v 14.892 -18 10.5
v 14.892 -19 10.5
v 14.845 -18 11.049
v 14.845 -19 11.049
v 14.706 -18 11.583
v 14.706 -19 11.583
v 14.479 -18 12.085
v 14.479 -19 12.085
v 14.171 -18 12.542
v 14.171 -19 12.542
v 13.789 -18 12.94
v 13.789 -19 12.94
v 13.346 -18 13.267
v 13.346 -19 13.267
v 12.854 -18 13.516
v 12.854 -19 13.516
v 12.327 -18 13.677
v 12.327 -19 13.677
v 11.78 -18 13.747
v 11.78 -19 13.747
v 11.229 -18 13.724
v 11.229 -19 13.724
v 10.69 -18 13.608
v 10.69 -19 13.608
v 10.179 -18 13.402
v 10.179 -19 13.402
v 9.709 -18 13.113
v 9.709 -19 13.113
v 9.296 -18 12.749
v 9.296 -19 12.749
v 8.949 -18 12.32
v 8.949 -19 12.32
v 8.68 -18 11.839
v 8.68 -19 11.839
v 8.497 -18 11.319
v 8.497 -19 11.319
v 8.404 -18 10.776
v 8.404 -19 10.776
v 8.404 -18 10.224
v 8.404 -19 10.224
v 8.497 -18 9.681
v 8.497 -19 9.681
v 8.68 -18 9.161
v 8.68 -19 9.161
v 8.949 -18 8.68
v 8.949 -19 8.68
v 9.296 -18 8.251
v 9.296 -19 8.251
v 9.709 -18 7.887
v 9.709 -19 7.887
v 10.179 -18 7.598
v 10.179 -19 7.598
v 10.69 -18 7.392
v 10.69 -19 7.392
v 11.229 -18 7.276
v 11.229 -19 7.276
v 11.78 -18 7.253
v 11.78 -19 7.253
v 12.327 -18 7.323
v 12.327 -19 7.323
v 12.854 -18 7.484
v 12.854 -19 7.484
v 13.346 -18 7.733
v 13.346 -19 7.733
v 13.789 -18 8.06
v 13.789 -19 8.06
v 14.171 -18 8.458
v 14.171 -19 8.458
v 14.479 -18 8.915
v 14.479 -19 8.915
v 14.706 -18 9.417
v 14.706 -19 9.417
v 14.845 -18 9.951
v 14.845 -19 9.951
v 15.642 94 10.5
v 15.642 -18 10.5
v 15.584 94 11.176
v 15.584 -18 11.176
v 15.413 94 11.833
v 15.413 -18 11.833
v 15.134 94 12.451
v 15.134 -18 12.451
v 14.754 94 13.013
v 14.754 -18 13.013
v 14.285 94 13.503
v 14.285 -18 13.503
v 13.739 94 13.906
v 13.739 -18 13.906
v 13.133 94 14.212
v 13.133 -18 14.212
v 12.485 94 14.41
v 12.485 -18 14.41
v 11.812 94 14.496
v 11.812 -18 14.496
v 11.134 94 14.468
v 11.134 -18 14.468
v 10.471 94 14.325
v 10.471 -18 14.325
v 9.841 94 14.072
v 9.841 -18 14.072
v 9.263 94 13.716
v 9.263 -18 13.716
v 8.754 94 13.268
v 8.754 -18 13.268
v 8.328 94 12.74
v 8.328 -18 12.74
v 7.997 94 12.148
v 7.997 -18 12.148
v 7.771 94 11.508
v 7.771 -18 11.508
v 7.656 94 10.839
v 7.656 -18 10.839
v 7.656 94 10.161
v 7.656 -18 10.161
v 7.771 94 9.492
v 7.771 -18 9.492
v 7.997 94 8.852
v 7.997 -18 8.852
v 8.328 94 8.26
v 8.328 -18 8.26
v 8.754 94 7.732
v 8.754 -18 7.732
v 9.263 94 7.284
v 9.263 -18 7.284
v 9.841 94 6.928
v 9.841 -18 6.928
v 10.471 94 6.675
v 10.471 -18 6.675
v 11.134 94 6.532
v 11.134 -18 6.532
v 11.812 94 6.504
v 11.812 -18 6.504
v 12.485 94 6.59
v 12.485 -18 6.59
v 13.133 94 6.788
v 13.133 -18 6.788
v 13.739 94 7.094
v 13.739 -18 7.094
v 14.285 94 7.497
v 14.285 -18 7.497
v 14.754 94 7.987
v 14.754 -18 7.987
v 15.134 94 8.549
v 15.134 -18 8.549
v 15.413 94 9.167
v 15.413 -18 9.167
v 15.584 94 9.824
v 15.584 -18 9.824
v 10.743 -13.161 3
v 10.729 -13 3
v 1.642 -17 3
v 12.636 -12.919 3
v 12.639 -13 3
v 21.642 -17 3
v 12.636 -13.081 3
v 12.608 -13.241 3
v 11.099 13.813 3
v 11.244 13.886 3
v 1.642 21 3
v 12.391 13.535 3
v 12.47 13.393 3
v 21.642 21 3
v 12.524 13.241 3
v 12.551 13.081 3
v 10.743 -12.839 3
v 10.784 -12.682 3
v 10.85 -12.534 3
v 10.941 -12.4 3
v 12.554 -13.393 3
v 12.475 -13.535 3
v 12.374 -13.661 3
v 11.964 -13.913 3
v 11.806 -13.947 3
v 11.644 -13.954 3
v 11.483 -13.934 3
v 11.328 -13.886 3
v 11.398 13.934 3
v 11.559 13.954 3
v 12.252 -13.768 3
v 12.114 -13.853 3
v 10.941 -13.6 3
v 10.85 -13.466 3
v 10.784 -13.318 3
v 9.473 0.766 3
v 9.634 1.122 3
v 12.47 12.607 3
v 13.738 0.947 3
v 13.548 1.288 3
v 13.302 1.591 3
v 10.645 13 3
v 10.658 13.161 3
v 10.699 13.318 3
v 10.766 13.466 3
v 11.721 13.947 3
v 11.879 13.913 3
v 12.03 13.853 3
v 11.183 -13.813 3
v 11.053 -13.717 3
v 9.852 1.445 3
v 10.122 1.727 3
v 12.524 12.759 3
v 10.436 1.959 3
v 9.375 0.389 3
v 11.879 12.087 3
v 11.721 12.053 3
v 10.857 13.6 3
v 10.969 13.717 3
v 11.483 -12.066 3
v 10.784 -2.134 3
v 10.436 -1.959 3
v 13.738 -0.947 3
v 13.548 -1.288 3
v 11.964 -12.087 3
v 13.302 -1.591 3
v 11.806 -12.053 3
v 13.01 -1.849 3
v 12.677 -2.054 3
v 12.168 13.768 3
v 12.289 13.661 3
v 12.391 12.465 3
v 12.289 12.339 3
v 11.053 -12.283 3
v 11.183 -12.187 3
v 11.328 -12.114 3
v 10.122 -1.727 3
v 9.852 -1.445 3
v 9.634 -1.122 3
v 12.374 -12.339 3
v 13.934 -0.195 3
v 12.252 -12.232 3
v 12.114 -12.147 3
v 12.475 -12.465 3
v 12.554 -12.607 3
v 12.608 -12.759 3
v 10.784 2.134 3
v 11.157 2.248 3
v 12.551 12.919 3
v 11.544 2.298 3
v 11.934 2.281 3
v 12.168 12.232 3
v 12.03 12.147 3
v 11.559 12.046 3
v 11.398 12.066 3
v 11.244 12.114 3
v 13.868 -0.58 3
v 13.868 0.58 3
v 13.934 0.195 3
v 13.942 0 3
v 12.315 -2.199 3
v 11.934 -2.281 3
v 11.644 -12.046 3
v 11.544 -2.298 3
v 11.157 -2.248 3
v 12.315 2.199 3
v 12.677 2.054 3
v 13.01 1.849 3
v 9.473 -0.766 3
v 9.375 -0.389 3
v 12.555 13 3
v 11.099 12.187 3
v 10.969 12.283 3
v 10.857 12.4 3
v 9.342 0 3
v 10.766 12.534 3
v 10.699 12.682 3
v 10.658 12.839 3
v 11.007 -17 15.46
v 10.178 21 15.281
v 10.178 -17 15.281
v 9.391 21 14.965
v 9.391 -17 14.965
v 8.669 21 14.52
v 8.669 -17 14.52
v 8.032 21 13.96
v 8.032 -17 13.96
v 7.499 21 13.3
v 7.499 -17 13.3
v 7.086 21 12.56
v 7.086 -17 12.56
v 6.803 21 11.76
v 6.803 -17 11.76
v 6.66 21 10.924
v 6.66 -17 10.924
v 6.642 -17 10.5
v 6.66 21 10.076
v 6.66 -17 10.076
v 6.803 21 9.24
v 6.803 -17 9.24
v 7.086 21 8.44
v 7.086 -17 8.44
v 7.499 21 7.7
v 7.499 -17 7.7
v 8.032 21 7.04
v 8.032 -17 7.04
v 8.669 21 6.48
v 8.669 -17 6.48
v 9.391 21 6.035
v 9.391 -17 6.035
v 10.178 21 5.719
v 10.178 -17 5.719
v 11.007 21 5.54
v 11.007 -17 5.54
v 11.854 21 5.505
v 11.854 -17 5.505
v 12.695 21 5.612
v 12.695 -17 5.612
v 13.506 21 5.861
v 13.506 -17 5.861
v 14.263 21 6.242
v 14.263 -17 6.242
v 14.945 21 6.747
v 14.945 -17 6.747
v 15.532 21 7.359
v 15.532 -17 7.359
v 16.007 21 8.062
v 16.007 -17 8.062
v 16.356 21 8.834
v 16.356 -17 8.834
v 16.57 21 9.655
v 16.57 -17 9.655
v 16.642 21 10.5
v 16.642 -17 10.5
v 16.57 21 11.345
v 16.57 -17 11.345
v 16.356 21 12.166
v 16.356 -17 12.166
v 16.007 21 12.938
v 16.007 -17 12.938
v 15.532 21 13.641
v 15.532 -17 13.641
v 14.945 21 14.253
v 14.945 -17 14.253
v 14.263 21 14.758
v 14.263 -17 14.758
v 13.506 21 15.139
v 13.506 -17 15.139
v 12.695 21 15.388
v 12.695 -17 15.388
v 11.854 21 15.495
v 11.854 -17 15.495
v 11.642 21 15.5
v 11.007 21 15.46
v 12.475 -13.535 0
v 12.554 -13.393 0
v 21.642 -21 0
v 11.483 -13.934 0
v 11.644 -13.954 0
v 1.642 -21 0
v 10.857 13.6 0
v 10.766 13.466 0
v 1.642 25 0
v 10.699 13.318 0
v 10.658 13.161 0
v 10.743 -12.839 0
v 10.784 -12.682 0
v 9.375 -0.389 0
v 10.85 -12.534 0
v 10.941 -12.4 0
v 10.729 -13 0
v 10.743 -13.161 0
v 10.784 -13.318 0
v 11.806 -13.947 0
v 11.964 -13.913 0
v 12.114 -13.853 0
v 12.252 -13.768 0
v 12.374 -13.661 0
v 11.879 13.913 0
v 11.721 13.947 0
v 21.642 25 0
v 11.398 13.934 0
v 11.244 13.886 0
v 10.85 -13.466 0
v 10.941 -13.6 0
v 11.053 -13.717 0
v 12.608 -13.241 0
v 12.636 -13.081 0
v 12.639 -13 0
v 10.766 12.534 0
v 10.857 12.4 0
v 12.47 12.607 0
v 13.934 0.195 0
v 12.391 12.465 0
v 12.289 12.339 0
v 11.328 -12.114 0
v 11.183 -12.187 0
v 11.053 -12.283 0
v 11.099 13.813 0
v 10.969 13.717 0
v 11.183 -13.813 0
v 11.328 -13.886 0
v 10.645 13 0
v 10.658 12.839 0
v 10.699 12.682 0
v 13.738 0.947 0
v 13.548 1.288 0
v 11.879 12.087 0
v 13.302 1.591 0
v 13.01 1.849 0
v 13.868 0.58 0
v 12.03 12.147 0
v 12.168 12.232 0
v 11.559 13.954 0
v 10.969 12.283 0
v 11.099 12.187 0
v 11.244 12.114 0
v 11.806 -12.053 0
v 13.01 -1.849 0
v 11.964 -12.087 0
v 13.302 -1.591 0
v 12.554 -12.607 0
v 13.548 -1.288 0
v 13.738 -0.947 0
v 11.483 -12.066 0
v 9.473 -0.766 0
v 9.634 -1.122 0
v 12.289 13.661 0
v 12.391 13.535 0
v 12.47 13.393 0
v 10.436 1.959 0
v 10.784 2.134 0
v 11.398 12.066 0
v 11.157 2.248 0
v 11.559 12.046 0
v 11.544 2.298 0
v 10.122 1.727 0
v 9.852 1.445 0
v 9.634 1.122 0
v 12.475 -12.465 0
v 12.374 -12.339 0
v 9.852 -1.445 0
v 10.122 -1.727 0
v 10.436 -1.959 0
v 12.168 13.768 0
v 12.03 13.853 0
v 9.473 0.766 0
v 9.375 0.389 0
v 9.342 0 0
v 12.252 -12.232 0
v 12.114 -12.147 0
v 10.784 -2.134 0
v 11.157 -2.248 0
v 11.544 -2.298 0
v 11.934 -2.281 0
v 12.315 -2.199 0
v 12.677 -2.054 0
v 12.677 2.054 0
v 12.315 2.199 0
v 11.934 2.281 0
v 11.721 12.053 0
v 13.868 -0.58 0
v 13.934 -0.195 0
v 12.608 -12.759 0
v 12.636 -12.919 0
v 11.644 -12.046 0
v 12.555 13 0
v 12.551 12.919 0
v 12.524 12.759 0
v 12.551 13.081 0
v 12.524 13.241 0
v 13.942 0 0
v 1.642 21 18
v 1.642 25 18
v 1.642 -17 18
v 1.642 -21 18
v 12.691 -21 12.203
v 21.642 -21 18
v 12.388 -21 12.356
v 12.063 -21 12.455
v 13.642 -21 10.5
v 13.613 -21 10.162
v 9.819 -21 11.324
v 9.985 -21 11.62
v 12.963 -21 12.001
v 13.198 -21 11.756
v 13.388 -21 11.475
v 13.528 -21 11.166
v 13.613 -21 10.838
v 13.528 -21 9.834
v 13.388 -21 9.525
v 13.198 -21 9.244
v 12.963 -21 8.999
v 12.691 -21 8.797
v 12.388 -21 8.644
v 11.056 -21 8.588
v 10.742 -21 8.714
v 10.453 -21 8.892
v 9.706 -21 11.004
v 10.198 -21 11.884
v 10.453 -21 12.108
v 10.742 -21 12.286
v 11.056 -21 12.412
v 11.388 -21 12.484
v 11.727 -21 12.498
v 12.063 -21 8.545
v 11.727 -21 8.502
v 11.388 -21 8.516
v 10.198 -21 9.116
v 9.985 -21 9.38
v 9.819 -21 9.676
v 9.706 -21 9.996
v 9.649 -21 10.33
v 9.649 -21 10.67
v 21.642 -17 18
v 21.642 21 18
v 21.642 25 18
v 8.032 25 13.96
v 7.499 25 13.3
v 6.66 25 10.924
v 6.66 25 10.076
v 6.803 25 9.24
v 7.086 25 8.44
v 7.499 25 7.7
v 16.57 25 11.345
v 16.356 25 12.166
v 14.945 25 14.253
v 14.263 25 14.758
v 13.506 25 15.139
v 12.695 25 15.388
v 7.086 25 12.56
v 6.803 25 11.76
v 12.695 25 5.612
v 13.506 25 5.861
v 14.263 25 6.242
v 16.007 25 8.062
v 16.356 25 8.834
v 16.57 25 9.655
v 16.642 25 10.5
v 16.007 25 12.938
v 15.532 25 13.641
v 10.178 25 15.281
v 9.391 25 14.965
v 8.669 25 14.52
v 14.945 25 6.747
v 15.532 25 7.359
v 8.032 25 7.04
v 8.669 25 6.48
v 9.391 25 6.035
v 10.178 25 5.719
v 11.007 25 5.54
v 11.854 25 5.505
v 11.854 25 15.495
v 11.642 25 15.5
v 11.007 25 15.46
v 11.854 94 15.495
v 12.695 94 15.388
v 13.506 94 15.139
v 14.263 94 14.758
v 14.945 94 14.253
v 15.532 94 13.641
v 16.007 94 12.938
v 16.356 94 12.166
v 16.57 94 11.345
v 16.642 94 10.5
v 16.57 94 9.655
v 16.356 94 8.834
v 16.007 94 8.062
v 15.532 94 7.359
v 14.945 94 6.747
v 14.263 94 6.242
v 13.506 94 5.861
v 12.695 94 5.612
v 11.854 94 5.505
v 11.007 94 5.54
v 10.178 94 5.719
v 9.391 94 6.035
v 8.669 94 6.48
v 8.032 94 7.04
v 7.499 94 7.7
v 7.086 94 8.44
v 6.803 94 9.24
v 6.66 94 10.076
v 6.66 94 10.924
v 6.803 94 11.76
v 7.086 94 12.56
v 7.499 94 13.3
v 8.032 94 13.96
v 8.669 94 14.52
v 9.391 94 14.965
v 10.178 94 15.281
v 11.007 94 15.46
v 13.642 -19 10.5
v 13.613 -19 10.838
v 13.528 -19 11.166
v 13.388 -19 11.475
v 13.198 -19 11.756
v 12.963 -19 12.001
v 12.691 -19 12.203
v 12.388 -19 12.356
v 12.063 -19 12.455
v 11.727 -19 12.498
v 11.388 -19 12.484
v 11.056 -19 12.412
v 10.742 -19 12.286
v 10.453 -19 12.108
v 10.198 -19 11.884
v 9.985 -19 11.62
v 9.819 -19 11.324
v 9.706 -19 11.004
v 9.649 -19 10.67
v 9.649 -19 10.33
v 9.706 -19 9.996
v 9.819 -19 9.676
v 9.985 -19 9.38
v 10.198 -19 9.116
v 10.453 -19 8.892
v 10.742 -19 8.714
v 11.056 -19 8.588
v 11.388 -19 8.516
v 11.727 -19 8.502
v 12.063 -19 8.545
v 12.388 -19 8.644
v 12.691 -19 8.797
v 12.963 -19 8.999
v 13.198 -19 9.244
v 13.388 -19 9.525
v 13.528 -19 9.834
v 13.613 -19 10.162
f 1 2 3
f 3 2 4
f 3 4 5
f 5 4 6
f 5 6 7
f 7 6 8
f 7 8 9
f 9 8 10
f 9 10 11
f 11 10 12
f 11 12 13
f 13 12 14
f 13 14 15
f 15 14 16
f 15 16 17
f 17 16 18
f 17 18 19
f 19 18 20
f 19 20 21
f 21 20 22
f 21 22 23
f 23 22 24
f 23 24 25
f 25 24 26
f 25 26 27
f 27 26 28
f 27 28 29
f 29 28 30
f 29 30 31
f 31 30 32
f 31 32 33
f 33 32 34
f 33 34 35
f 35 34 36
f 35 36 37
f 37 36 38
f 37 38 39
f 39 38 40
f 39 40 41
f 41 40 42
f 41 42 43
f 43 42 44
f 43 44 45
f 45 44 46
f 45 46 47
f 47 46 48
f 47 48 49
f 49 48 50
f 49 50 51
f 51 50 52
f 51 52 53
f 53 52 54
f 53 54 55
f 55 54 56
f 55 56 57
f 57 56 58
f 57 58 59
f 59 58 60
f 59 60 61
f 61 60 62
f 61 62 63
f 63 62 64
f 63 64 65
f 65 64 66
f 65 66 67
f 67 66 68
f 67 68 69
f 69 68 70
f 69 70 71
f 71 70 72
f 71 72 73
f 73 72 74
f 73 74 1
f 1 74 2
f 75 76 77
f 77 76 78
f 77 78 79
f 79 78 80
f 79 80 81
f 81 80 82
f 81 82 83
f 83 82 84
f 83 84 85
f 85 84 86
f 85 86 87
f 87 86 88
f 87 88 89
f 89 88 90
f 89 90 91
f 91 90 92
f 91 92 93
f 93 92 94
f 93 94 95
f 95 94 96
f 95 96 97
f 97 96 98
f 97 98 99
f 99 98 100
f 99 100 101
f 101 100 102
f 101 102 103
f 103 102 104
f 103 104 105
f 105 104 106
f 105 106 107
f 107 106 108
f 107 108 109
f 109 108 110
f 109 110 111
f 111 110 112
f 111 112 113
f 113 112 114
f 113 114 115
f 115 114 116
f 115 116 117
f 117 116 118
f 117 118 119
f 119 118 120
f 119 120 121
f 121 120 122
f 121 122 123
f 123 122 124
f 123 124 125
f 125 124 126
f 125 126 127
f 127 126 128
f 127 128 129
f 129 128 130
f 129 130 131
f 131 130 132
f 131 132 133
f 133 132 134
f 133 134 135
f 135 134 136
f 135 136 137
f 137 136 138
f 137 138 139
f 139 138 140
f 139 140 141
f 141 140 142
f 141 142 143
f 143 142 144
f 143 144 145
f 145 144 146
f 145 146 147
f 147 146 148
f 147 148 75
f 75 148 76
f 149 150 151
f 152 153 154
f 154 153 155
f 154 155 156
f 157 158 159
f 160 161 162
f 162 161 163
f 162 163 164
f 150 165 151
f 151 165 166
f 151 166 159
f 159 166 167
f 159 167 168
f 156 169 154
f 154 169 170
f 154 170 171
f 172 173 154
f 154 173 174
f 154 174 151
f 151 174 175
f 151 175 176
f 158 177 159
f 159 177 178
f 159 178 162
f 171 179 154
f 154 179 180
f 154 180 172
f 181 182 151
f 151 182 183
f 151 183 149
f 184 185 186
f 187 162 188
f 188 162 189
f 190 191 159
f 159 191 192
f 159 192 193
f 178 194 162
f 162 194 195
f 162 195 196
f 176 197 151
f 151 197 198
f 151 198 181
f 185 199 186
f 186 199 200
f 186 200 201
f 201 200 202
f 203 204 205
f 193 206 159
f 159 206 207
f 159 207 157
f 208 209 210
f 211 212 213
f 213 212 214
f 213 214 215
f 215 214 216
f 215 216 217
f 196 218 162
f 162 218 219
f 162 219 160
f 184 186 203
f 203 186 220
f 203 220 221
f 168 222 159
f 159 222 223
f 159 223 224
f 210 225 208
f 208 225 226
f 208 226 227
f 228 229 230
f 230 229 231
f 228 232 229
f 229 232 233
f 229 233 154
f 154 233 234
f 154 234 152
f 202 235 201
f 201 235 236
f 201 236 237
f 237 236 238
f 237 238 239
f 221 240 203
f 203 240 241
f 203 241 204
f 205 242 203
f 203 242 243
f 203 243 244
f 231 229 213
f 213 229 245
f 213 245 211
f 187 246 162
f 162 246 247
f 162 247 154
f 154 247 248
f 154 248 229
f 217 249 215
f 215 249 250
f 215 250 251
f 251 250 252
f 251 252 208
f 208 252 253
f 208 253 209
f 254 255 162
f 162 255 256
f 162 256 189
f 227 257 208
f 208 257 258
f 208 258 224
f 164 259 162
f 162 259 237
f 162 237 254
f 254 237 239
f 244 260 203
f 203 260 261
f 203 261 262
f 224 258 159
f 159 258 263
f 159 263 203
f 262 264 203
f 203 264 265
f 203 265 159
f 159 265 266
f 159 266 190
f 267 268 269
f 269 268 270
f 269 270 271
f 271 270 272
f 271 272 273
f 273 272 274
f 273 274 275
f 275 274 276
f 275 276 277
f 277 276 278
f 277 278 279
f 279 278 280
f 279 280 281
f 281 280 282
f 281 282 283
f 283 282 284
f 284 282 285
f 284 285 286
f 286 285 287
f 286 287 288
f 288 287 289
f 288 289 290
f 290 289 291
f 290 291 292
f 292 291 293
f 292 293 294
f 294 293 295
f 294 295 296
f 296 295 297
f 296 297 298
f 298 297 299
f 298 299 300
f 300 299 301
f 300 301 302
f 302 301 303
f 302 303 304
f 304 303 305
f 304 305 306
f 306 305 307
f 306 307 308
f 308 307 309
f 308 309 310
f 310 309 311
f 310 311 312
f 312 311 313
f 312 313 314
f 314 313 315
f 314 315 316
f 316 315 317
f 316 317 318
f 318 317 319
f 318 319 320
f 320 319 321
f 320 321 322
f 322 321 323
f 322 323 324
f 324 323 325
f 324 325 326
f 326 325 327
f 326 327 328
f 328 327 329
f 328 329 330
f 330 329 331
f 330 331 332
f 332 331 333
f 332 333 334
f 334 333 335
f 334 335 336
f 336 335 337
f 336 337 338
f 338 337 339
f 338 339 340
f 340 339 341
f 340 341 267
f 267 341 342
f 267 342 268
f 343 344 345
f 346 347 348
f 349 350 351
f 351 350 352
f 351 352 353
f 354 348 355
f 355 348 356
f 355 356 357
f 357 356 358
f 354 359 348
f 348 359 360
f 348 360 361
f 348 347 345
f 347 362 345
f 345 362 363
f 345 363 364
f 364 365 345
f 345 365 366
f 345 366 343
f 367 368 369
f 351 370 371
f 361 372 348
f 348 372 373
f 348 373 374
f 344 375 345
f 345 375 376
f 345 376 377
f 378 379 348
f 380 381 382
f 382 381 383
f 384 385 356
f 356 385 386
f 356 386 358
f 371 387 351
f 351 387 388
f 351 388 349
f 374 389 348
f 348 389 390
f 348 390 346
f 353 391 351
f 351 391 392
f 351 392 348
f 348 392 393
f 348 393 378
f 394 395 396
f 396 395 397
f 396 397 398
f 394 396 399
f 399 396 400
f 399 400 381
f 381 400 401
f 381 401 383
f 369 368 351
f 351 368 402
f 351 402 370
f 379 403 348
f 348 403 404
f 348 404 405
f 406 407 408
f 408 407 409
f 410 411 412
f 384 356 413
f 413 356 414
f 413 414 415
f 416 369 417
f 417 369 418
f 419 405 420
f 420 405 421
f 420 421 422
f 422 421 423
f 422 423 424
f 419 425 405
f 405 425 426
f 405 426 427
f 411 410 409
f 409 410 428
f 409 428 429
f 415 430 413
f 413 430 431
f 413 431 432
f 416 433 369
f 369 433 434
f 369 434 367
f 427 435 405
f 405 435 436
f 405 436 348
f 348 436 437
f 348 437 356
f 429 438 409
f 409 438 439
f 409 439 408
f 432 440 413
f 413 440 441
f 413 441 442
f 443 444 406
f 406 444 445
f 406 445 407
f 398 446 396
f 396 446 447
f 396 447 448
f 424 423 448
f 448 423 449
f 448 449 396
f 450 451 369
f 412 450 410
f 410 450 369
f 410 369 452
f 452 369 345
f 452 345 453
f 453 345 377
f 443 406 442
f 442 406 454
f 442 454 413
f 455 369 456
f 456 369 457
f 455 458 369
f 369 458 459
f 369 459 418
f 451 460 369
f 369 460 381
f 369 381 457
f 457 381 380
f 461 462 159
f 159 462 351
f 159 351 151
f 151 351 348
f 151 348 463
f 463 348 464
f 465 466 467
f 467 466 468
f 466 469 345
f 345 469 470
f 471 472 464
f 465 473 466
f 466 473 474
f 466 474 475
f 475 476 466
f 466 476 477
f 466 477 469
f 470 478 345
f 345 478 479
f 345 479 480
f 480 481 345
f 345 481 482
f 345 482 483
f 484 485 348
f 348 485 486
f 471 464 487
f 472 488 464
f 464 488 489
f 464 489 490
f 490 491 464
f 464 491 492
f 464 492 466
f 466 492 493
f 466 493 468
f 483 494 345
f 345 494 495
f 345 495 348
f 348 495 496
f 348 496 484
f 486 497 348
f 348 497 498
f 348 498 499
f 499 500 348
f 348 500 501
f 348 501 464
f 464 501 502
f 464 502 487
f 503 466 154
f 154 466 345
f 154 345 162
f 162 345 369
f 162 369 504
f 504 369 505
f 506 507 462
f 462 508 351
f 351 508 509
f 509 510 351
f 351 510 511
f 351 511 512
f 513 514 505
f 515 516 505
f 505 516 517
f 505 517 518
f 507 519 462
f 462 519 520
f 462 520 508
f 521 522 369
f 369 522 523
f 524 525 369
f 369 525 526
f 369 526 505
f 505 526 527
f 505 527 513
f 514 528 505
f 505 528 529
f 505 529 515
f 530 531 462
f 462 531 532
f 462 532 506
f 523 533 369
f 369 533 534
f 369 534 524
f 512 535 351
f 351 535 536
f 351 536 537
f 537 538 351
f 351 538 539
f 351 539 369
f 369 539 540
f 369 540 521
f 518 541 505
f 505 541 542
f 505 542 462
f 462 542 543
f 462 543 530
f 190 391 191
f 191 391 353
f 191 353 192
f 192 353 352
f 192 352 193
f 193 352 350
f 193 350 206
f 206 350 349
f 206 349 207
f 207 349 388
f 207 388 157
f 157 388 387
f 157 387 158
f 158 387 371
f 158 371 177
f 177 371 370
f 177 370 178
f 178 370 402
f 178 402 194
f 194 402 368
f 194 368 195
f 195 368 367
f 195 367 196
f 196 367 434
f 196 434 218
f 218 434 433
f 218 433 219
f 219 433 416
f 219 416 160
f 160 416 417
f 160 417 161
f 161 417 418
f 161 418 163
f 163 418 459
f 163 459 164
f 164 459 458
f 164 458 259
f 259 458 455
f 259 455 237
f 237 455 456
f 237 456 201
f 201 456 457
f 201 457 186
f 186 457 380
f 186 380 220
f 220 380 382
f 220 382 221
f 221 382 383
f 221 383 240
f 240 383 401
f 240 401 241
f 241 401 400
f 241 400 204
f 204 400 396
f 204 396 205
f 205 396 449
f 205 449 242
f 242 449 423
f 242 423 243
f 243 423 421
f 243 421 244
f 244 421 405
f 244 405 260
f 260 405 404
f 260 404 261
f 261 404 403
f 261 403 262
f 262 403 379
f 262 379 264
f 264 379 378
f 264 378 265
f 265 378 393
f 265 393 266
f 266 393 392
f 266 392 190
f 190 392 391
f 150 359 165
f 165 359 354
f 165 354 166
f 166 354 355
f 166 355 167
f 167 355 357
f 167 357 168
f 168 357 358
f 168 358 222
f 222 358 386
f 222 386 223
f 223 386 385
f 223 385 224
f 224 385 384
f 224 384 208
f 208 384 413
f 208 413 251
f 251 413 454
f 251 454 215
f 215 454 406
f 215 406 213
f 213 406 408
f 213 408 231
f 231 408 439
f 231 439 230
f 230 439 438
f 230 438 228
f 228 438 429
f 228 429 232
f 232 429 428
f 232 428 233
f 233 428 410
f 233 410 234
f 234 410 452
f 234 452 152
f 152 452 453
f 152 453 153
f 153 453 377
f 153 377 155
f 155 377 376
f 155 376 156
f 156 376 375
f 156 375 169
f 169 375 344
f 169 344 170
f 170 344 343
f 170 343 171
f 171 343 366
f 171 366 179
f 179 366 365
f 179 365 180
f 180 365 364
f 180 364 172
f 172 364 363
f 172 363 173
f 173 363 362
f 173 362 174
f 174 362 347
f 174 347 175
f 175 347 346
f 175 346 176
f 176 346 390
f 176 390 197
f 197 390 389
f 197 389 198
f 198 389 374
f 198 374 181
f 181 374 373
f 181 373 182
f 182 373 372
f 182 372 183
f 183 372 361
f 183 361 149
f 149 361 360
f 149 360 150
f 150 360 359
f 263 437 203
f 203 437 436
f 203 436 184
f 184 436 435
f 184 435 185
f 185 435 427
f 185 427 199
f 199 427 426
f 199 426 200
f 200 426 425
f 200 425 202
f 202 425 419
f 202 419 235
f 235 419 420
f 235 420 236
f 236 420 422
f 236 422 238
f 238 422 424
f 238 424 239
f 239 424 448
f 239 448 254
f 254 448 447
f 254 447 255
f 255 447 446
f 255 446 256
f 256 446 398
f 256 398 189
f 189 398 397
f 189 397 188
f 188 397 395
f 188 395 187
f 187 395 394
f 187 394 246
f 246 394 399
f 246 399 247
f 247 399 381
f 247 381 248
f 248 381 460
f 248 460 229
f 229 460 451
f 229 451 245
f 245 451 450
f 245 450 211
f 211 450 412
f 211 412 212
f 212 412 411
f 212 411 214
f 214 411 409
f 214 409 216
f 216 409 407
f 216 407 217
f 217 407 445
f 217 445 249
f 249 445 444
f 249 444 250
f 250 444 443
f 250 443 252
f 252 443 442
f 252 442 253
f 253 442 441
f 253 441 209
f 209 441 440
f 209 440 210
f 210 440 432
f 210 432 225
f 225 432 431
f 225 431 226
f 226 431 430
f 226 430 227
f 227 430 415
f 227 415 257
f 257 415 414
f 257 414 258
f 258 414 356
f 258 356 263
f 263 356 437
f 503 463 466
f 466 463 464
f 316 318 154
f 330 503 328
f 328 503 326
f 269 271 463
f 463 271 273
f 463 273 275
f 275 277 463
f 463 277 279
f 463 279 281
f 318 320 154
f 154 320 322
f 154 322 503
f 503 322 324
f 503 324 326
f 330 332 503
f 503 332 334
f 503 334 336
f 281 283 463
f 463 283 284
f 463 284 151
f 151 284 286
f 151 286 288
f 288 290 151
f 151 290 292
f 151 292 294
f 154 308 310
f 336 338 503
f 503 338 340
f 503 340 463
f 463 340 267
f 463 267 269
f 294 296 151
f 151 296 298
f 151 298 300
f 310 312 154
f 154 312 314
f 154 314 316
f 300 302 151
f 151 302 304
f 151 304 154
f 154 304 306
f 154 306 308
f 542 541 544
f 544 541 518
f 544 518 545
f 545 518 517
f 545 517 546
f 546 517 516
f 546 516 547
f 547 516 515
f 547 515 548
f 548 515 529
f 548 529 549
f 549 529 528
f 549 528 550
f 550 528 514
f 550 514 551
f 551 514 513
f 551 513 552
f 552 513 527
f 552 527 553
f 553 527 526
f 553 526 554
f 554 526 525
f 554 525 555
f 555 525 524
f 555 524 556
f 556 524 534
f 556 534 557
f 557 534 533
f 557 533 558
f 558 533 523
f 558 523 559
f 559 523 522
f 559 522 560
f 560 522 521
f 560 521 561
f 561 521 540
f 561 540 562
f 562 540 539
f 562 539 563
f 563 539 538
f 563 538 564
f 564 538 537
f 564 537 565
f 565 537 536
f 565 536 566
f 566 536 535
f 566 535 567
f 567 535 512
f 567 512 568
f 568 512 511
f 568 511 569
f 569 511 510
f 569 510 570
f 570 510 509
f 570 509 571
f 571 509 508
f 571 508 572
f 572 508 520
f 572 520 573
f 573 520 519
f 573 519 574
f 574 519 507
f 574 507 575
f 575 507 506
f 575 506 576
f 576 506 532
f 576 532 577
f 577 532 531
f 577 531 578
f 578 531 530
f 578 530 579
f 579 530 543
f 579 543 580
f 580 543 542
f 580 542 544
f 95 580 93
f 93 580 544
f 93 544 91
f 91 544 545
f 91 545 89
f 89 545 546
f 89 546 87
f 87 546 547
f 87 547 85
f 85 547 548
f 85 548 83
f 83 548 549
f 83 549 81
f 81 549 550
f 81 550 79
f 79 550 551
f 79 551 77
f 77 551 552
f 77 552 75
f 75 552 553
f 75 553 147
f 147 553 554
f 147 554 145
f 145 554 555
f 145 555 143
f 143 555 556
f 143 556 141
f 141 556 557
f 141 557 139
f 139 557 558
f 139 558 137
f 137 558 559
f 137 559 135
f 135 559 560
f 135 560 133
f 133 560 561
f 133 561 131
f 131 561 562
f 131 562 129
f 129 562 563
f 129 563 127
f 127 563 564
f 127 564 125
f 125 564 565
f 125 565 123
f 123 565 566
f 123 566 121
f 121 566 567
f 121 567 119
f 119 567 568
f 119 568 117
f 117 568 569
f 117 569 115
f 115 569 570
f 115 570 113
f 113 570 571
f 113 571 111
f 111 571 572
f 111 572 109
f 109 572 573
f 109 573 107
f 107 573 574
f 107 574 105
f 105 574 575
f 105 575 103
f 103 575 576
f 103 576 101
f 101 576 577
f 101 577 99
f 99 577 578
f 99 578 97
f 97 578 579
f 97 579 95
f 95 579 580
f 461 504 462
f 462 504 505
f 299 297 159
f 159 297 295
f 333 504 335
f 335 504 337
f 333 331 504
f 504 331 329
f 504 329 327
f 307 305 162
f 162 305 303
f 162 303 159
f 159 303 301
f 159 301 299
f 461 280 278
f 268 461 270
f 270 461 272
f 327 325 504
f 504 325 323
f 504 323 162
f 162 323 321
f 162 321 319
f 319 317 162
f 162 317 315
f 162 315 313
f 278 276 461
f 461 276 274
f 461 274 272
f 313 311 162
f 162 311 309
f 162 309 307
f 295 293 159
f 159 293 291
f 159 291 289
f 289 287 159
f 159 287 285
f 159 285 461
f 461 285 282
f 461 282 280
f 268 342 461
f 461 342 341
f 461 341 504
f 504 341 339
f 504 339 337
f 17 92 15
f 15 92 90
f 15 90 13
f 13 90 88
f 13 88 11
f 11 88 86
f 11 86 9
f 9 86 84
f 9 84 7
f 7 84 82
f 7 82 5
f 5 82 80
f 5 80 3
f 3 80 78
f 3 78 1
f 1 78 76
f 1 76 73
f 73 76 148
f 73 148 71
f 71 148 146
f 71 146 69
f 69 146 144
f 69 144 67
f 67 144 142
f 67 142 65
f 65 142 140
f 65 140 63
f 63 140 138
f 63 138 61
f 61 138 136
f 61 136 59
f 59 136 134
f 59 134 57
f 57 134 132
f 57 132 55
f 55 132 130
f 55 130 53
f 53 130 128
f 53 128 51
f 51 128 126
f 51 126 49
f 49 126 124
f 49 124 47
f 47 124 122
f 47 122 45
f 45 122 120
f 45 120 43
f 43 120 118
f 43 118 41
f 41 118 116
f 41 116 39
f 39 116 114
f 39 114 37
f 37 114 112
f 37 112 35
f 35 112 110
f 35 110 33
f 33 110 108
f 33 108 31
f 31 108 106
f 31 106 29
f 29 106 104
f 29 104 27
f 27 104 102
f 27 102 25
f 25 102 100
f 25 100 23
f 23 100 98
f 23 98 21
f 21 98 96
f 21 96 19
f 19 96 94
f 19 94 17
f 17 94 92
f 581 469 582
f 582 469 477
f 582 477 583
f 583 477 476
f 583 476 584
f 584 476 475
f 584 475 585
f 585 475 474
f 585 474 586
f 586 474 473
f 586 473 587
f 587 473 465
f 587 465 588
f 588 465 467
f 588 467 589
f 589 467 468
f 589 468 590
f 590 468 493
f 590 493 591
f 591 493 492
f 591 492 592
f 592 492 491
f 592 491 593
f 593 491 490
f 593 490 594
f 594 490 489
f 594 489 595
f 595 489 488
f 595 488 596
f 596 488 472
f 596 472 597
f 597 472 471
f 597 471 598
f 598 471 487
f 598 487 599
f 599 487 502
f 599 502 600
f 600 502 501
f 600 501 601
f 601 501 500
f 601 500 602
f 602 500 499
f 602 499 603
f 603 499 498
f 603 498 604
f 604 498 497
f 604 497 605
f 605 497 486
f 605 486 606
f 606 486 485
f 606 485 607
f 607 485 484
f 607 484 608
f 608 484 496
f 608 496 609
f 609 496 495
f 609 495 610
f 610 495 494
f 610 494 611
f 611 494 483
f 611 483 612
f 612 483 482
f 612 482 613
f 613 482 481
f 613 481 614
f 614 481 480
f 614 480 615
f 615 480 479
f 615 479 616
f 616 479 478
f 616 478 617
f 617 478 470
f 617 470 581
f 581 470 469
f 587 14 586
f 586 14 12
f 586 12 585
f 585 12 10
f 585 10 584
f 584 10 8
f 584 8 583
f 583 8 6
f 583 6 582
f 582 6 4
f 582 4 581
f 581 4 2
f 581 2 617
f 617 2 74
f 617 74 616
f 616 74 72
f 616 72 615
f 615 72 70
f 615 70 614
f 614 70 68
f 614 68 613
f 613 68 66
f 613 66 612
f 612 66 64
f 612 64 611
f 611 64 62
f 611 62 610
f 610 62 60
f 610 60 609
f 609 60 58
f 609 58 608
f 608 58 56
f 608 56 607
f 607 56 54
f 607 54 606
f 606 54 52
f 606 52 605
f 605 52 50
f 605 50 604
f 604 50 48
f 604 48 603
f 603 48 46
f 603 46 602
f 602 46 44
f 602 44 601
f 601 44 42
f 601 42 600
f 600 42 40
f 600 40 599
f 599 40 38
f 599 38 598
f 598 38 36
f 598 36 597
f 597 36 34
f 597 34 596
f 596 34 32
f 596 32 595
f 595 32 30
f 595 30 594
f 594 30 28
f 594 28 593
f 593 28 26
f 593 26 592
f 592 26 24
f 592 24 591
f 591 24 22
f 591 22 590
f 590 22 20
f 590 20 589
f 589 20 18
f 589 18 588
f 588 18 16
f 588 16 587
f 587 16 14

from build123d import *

# Parameters (mm, degrees)
SKETCH1_W           = 20
SKETCH1_H           = 46
SKETCH1_R           = 0.955
SKETCH1_R_2         = 2.3
BOSS_EXTRUDE1_DEPTH = 3
SKETCH2_W           = 20
SKETCH2_H           = 15
SKETCH2_R           = 4
BOSS_EXTRUDE2_DEPTH = 4
SKETCH4_R           = 5
SKETCH4_R_2         = 4
BOSS_EXTRUDE4_DEPTH = 115
BOSS_EXTRUDE6_START = -4
SKETCH5_W           = 20
SKETCH5_H           = 15
SKETCH5_R           = 4
BOSS_EXTRUDE6_DEPTH = 4
SKETCH4_3_R         = 3.25
SKETCH4_3_R_2       = 2
BOSS_EXTRUDE7_DEPTH = 2
SKETCH4_4_R         = 4
SKETCH4_4_R_2       = 3.25
BOSS_EXTRUDE8_DEPTH = 3


with BuildPart() as part:
    # Sketch1 → Boss-Extrude1 (new body)
    with BuildSketch(Plane.XY):
        with Locations((11.641947403, 2)):
            Rectangle(SKETCH1_W, SKETCH1_H)
        with Locations((11.599686328, 13)):
            Circle(SKETCH1_R, mode=Mode.SUBTRACT)
        with Locations((11.684208477, -13)):
            Circle(SKETCH1_R, mode=Mode.SUBTRACT)
        with Locations((11.641947403, 0)):
            Circle(SKETCH1_R_2, mode=Mode.SUBTRACT)
    extrude(amount=BOSS_EXTRUDE1_DEPTH)

    # Sketch2 → Boss-Extrude2 (add)
    with BuildSketch(Plane.XZ.offset(21)):
        with Locations((11.641947403, 10.5)):
            Rectangle(SKETCH2_W, SKETCH2_H)
        with Locations((11.641947403, 10.5)):
            Circle(SKETCH2_R, mode=Mode.SUBTRACT)
    extrude(amount=-BOSS_EXTRUDE2_DEPTH)

    # Sketch4 → Boss-Extrude4 (add)
    with BuildSketch(Plane.XZ.offset(21)):
        with Locations((11.641947403, 10.5)):
            Circle(SKETCH4_R)
        with Locations((11.641947403, 10.5)):
            Circle(SKETCH4_R_2, mode=Mode.SUBTRACT)
    extrude(amount=-BOSS_EXTRUDE4_DEPTH)

    # Sketch5 → Boss-Extrude6 (add)
    with BuildSketch(Plane(origin=(0, 25, 0), x_dir=(1, 0, 0), z_dir=(0, 1, 0)).offset(BOSS_EXTRUDE6_START)):
        with Locations((11.641947403, -10.5)):
            Rectangle(SKETCH5_W, SKETCH5_H)
        with Locations((11.641947403, -10.5)):
            Circle(SKETCH5_R, mode=Mode.SUBTRACT)
    extrude(amount=BOSS_EXTRUDE6_DEPTH)



with BuildPart() as body_2:
    # Sketch4<3> → Boss-Extrude7 (new body)
    with BuildSketch(Plane.XZ.offset(21)):
        with Locations((11.641947403, 10.5)):
            Circle(SKETCH4_3_R)
        with Locations((11.641947403, 10.5)):
            Circle(SKETCH4_3_R_2, mode=Mode.SUBTRACT)
    extrude(amount=-BOSS_EXTRUDE7_DEPTH)


with BuildPart() as part_1:
    add(part.part)

    add(body_2.part)  # Boss-Extrude8 merges body 2
    # Sketch4<4> → Boss-Extrude8 (add)
    with BuildSketch(Plane.XZ.offset(21)):
        with Locations((11.641947403, 10.5)):
            Circle(SKETCH4_4_R)
        with Locations((11.641947403, 10.5)):
            Circle(SKETCH4_4_R_2, mode=Mode.SUBTRACT)
    extrude(amount=-BOSS_EXTRUDE8_DEPTH)


solid = part_1.part
